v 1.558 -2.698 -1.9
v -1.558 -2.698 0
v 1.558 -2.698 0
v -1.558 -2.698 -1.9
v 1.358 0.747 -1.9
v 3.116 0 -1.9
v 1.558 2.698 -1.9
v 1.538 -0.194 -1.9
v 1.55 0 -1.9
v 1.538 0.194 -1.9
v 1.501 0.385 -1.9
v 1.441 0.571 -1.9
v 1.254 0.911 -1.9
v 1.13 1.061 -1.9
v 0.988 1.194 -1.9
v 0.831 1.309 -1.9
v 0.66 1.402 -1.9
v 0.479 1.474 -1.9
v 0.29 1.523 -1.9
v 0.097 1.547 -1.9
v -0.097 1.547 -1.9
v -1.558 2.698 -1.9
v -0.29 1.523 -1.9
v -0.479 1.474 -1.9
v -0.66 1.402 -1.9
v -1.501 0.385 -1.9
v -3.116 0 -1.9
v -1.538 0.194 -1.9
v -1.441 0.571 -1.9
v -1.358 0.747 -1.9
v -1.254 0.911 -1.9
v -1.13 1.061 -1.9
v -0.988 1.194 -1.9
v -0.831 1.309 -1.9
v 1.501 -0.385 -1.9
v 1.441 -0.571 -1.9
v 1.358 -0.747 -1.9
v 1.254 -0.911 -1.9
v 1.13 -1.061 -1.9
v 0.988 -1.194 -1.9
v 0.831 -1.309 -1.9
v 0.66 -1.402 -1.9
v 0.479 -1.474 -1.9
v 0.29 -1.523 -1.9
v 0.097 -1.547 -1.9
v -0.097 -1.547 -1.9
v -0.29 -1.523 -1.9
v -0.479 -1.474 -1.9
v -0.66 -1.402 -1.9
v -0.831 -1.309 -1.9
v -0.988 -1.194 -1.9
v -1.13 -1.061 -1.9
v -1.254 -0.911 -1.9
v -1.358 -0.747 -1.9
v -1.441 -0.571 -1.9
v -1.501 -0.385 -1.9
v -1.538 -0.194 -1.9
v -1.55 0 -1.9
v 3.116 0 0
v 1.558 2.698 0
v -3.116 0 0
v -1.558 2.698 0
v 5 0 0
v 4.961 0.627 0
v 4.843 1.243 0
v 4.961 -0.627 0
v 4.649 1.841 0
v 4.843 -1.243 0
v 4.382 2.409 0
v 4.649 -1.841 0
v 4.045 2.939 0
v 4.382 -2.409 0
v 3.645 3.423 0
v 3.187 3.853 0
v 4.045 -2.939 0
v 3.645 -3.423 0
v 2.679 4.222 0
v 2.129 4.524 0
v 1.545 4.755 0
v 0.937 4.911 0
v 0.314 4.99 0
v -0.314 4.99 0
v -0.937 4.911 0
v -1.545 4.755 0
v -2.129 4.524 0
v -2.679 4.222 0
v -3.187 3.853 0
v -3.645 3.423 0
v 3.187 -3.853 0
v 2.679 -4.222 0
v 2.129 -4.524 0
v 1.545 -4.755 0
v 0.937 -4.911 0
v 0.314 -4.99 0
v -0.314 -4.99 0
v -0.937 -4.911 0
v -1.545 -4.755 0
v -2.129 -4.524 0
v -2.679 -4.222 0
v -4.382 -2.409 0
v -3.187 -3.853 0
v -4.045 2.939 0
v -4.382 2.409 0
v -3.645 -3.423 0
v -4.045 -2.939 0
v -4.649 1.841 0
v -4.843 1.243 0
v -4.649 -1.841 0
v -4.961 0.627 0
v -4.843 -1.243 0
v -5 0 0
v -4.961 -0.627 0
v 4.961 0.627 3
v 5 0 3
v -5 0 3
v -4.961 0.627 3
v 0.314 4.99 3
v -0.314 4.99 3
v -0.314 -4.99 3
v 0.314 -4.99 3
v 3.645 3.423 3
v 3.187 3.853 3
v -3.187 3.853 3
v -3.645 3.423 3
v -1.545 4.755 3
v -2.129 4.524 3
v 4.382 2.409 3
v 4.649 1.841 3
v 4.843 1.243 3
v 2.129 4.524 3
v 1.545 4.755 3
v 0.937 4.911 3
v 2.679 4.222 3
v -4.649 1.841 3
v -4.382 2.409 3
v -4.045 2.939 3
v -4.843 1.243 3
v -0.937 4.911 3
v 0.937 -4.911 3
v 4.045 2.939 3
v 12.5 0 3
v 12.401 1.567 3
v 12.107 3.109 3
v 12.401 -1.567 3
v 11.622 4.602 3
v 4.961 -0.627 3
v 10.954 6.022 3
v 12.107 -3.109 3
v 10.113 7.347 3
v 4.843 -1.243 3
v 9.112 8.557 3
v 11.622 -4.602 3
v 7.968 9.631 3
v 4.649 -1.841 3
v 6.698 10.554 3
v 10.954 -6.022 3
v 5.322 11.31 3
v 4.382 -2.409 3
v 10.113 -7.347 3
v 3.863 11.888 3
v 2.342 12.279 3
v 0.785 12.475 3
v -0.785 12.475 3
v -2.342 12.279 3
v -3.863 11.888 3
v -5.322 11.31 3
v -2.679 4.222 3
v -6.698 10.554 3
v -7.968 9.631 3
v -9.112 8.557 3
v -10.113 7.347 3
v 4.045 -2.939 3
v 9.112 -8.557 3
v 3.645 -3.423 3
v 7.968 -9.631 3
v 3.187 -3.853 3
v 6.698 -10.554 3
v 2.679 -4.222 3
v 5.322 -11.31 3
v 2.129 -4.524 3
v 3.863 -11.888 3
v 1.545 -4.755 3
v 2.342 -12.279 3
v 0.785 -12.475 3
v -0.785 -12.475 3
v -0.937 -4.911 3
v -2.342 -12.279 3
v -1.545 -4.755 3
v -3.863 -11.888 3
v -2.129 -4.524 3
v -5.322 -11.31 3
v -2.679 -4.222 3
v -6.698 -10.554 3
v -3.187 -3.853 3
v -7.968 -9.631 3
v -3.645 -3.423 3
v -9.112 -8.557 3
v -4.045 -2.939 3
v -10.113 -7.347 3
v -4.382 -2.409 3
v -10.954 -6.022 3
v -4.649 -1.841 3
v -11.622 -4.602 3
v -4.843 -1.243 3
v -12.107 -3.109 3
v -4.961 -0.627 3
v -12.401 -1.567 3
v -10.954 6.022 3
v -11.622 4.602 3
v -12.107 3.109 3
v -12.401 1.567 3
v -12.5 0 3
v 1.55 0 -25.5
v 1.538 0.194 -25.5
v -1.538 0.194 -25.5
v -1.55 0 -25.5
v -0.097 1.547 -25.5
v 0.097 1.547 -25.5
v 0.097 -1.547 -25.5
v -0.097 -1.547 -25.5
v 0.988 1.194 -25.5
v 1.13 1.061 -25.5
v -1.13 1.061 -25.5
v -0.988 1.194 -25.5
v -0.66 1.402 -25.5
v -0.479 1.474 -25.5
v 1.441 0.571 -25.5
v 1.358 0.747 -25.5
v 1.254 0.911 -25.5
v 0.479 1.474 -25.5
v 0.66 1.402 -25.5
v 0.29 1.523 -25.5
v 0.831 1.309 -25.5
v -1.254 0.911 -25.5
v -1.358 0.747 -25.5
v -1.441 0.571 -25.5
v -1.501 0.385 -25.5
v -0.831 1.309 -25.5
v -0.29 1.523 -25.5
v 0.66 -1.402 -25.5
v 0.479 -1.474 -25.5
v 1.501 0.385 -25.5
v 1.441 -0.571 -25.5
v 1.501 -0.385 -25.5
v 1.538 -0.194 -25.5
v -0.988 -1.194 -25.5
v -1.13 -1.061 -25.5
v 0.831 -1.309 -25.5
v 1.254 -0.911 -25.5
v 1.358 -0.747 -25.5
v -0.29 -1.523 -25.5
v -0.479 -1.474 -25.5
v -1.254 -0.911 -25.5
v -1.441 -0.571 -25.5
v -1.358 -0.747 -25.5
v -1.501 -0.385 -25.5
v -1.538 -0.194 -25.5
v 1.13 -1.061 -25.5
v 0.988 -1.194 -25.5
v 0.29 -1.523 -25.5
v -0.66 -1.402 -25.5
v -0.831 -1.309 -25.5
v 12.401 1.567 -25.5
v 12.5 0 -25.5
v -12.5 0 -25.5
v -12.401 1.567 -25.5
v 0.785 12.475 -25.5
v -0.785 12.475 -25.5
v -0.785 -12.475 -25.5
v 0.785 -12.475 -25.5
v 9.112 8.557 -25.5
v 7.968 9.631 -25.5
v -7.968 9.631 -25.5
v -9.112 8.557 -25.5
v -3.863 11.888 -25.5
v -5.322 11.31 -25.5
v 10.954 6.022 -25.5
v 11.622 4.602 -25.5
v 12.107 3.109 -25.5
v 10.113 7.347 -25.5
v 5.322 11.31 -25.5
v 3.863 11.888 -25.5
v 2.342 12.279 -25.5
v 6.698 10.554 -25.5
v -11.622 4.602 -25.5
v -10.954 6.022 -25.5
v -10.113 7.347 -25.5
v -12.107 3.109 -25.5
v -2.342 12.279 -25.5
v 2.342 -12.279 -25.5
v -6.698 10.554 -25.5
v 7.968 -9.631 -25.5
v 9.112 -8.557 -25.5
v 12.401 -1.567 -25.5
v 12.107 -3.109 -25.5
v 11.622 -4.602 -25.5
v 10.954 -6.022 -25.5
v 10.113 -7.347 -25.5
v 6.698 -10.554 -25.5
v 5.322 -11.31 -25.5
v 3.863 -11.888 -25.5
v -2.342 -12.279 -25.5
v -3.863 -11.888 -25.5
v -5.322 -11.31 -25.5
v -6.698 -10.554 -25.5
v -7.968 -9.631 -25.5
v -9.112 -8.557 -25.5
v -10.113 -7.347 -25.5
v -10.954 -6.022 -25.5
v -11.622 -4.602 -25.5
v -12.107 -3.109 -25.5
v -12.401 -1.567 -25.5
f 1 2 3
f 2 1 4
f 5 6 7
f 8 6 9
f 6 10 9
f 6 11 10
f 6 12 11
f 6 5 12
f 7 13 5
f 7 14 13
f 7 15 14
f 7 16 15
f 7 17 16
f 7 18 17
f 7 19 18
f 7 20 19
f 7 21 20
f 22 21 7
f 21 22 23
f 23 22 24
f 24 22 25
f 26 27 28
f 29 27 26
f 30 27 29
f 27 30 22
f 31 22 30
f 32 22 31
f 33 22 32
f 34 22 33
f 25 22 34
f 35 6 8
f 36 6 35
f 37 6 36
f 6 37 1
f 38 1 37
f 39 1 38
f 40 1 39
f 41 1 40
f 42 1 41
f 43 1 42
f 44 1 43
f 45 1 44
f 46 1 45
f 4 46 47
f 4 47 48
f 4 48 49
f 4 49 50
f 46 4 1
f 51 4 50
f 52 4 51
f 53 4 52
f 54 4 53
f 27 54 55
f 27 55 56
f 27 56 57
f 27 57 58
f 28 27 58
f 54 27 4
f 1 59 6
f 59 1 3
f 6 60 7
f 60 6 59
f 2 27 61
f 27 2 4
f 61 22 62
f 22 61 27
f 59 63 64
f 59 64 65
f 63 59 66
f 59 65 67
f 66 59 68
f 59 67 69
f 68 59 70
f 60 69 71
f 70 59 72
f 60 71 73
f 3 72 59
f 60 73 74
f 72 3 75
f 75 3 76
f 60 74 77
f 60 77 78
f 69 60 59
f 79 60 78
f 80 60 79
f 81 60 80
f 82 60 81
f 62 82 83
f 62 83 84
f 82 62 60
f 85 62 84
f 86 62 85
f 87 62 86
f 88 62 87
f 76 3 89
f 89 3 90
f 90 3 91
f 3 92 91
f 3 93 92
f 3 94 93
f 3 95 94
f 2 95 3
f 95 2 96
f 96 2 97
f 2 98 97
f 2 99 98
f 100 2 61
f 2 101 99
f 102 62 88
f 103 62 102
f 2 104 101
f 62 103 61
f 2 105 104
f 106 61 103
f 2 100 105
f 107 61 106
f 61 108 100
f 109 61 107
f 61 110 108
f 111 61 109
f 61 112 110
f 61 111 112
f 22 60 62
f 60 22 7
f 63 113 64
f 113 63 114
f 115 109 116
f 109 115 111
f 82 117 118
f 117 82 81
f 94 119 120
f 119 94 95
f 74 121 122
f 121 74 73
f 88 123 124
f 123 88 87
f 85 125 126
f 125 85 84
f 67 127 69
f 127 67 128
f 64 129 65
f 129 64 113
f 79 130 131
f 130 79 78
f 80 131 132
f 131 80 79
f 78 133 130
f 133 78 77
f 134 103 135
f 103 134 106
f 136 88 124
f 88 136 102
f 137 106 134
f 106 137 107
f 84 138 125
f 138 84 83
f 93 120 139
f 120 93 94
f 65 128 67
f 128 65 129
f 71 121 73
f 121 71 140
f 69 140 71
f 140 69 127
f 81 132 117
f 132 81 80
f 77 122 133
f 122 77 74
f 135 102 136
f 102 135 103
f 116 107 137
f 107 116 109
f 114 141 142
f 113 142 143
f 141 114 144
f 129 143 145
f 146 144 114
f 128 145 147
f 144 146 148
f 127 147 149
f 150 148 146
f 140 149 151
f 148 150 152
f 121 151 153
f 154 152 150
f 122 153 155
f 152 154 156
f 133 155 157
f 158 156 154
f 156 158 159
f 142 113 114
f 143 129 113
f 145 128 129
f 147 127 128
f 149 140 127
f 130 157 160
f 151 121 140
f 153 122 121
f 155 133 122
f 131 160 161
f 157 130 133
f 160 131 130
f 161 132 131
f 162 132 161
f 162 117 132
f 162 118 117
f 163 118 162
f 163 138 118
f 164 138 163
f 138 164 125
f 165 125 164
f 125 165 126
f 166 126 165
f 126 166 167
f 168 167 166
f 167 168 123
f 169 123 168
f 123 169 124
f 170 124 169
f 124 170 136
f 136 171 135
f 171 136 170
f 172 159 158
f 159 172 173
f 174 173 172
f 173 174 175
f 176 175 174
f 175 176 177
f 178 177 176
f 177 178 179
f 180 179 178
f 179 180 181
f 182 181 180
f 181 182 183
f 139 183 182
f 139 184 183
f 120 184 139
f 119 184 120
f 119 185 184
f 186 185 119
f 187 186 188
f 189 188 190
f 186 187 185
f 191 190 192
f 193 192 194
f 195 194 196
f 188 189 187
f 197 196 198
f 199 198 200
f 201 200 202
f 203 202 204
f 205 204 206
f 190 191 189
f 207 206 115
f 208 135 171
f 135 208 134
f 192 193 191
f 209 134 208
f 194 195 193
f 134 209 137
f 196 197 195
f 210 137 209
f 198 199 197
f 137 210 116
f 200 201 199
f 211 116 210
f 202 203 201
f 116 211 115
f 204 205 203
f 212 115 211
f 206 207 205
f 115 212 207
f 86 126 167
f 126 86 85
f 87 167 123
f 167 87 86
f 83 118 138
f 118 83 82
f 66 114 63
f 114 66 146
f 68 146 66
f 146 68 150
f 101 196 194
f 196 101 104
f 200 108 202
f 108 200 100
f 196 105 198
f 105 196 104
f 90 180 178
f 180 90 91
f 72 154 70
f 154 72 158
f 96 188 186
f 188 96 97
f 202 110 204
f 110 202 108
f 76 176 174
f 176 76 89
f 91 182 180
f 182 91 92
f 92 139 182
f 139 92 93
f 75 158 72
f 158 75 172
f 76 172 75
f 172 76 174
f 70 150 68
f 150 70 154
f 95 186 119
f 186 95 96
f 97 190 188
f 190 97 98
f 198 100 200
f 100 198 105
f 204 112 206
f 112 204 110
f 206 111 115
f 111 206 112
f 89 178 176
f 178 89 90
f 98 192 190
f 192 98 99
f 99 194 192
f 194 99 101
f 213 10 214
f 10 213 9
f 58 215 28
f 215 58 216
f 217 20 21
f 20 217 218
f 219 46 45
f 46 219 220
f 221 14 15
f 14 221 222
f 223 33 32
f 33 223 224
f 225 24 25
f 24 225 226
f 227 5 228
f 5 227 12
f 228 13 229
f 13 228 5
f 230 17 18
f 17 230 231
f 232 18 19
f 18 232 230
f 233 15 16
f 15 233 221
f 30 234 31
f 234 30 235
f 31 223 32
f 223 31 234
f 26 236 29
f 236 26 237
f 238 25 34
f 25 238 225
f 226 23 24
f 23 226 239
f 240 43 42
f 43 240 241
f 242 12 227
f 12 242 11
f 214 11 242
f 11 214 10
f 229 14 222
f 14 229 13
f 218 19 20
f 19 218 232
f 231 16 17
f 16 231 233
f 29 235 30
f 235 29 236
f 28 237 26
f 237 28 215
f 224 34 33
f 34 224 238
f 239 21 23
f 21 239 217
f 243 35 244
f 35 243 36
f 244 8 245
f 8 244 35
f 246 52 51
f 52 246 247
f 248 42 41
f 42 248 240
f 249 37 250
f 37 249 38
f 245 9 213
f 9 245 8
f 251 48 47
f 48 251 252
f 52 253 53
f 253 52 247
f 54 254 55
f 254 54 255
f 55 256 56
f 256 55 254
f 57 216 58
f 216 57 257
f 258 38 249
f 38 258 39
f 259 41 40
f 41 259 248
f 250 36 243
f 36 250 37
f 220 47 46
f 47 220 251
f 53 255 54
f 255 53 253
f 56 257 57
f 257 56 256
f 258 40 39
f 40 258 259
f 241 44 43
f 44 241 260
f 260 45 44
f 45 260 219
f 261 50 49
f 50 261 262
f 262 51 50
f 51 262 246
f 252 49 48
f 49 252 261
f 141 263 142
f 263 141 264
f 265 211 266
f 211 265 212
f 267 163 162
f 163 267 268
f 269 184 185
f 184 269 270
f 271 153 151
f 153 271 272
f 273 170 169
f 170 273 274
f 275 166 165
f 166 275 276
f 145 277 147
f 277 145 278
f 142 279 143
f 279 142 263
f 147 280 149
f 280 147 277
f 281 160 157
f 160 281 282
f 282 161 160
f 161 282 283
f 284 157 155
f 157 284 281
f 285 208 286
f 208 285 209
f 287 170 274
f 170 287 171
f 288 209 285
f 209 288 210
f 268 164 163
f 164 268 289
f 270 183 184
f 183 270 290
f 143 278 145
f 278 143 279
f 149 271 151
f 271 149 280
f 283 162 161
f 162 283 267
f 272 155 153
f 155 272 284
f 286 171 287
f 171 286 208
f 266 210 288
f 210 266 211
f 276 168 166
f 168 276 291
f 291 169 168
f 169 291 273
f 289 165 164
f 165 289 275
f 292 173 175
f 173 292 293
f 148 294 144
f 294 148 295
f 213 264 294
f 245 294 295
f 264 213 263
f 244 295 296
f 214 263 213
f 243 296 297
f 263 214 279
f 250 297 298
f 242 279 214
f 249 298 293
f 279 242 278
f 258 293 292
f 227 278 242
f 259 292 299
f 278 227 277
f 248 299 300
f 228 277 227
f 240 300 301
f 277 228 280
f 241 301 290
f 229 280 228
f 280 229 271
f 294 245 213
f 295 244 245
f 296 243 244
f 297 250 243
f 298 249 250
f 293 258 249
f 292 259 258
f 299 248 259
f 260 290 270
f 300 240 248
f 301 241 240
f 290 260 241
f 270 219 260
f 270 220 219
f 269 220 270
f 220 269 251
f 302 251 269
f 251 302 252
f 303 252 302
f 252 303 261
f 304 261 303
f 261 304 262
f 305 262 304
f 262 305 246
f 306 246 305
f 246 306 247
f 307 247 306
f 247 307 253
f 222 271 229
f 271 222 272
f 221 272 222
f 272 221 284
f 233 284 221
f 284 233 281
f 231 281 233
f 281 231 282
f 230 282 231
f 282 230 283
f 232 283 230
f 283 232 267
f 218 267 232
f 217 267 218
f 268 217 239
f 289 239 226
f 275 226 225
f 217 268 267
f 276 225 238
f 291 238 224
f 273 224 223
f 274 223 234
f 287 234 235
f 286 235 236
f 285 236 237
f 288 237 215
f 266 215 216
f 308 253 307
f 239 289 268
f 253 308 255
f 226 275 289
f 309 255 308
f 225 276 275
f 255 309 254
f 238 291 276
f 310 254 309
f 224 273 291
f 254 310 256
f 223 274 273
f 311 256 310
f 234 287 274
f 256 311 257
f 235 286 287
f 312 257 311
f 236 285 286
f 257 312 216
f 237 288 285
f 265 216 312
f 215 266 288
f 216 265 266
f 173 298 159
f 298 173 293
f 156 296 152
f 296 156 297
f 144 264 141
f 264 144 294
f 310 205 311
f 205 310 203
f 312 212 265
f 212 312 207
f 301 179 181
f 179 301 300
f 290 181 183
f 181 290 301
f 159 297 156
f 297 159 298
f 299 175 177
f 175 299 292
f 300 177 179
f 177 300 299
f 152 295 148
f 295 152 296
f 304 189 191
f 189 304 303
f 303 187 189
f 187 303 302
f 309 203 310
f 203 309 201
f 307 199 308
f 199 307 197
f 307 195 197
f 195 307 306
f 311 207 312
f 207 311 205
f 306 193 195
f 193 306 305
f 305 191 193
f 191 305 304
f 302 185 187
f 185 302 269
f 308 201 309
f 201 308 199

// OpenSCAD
$fn = 50;

difference() {
	union() {
		translate(v = [0, 0, -25.5]) {
			cylinder(h = 28.5, r = 12.5);
		}
	}
	union() {
		translate(v = [0, 0, 0]) {
			rotate(a = [0, 0, 0]) {
				difference() {
					union() {
						translate(v = [0, 0, -1.9]) {
							linear_extrude(height = 1.9) {
								polygon(points = [[3.1158, 0.0], [1.5579000000000005, 2.698361953111554], [-1.5578999999999994, 2.6983619531115544], [-3.1158, 3.815754496783323e-16], [-1.5579000000000014, -2.6983619531115535], [1.557899999999998, -2.6983619531115552]]);
							}
						}
					}
					union();
				}
			}
		}
		#cylinder(h = 3, r = 5.0);
		#translate(v = [0, 0, -100.0]) {
			cylinder(h = 200, r = 1.55);
		}
	}
}
